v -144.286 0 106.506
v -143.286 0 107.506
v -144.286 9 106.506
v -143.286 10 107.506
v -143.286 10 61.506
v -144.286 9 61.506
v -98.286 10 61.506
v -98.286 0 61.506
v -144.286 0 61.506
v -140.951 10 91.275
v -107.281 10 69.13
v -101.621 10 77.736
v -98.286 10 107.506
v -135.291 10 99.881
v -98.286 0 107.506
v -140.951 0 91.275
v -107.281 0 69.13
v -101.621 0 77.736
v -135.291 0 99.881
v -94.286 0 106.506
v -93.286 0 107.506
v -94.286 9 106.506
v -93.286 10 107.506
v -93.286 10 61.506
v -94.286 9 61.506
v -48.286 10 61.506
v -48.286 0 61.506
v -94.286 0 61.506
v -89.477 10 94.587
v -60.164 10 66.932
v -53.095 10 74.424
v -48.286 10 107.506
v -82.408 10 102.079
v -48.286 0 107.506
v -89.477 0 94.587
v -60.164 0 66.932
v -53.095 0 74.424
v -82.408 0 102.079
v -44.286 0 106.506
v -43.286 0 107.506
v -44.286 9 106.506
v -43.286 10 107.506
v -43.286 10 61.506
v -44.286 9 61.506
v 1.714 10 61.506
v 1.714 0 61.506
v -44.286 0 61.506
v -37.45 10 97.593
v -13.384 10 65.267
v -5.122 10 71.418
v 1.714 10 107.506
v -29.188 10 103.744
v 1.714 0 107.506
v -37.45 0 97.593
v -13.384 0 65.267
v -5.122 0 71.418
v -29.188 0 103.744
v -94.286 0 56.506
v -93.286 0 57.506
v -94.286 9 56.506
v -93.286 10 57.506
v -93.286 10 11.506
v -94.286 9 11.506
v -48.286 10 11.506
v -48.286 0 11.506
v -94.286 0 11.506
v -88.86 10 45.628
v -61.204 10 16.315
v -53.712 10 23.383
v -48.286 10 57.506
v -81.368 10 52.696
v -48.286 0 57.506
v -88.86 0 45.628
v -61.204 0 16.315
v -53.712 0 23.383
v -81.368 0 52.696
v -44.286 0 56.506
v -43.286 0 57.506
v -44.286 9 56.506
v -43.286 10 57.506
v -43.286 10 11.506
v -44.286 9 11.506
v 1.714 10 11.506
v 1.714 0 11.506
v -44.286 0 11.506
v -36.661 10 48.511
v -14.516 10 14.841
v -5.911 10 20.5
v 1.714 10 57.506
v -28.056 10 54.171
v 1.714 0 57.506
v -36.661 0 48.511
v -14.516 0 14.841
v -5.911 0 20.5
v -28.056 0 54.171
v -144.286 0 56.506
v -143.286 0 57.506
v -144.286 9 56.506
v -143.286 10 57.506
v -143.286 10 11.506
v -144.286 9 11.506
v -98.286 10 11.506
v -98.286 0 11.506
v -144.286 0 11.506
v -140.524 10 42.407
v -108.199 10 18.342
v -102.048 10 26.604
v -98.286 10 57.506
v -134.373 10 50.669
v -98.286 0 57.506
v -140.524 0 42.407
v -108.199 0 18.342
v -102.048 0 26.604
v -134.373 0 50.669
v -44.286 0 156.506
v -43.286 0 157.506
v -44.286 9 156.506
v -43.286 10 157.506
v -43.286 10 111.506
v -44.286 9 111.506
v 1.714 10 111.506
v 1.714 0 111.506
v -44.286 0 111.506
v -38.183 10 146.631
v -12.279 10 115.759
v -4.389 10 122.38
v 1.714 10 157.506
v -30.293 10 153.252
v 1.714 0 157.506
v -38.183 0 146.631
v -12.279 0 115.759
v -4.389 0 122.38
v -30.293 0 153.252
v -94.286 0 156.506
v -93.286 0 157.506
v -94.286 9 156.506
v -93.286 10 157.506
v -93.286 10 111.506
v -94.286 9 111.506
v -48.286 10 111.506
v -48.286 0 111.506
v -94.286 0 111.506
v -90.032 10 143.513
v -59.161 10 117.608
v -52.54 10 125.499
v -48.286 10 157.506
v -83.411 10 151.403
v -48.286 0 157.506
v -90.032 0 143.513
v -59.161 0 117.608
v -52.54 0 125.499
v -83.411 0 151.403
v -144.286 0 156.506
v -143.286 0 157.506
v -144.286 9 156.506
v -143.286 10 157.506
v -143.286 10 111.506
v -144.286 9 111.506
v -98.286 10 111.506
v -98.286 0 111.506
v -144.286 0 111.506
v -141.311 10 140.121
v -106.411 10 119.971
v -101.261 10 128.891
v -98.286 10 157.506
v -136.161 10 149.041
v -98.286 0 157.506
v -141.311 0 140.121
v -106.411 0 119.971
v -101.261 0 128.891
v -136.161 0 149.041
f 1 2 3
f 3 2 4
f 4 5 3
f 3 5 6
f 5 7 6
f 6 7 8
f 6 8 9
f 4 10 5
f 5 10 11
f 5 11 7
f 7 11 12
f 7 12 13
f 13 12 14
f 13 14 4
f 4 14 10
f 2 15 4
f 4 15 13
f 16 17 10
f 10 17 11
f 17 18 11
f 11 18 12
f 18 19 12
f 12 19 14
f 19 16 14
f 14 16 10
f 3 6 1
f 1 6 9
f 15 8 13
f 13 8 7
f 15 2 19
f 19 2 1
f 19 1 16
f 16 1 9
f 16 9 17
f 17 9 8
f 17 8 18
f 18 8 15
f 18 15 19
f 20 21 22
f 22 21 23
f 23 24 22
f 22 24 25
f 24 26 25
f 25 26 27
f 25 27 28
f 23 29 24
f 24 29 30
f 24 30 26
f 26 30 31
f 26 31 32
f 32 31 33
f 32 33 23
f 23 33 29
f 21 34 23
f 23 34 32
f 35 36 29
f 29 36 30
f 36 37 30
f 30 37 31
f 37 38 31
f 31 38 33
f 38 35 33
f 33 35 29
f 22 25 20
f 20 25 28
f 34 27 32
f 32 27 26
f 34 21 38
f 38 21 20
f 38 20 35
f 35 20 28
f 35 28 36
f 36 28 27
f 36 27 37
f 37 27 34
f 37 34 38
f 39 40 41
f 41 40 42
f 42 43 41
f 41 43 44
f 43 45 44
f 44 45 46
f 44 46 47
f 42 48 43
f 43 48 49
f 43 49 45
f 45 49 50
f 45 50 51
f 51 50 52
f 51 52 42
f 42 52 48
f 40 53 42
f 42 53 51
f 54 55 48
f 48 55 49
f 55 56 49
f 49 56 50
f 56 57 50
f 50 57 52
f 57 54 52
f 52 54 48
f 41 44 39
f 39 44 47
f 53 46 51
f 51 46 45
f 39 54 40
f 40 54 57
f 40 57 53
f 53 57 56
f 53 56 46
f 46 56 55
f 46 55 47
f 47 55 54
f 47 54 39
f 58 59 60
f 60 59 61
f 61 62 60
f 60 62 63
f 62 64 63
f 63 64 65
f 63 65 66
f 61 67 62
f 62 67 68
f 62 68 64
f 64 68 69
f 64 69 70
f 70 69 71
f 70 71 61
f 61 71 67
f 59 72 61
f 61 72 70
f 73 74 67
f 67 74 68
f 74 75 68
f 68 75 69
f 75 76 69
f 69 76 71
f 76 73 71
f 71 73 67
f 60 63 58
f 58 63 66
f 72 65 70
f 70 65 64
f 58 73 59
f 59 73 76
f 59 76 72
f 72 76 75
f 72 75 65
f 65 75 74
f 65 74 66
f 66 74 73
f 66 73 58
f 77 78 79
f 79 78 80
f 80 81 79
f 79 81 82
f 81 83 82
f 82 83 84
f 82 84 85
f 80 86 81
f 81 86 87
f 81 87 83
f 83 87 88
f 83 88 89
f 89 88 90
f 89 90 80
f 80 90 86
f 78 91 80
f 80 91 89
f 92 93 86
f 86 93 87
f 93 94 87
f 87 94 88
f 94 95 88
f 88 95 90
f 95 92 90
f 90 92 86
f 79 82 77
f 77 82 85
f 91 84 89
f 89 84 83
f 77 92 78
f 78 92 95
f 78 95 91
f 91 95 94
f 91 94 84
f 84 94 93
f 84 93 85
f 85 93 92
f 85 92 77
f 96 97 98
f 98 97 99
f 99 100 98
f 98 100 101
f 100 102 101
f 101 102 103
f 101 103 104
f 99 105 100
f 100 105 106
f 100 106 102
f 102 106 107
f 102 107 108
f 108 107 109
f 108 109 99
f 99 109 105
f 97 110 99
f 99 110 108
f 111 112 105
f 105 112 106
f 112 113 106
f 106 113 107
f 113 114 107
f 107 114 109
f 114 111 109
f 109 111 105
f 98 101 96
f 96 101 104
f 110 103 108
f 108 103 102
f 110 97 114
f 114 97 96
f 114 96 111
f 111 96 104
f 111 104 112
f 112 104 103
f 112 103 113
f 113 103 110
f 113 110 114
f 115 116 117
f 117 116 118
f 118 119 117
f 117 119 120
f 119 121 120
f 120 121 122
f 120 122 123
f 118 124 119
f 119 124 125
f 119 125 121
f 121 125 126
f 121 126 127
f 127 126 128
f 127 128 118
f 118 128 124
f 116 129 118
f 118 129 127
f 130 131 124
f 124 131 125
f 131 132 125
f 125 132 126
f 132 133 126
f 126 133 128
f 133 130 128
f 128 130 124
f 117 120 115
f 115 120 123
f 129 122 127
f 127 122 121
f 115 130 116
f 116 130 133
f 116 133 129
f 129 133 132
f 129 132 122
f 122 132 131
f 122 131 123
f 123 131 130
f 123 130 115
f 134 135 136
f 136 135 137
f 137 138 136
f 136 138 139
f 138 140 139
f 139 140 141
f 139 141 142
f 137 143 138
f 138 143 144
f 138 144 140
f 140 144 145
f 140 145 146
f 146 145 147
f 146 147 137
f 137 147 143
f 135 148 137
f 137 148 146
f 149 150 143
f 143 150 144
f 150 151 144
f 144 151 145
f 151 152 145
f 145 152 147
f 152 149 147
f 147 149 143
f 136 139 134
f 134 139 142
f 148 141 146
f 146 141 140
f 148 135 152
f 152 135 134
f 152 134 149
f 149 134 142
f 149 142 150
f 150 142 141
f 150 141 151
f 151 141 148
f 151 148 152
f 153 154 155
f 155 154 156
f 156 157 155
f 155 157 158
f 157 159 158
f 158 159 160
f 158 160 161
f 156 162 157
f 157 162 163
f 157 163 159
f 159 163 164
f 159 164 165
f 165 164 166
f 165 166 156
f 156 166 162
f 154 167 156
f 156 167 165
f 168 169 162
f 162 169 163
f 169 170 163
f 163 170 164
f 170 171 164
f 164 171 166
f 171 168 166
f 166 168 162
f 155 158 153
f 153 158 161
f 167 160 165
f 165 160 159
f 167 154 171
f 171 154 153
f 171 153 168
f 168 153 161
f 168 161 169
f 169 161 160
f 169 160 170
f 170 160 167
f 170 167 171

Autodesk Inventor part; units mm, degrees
ref_plane "YZ Plane" through (0, 0, 0) normal (1, 0, 0) x (0, 1, 0)
ref_plane "XZ Plane" through (0, 0, 0) normal (0, 1, 0) x (-1, 0, 0)
ref_plane "XY Plane" through (0, 0, 0) normal (0, 0, 1) x (1, 0, 0)
sketch "Sketch1" plane through (0, 0, 0) normal (0, 1, 0) x (-1, 0, 0)
  line L0 (44.286, 57.5056) -> (-1.714, 57.5056)
  line L1 (-1.714, 57.5056) -> (-1.714, 11.5056)
  line L2 (-1.714, 11.5056) -> (44.286, 11.5056)
  line L3 (44.286, 11.5056) -> (44.286, 57.5056)
  line L4 (21.286, 57.5056) -> (21.286, 11.5056) construction
  line L5 (44.286, 34.5056) -> (-1.714, 34.5056) construction
  line L6 (32.0821, 50.9202) -> (21.286, 34.5056) construction
  line L7 (21.286, 34.5056) -> (12.8023, 40.0854) construction
  line L8 (36.6614, 48.5107) -> (28.0558, 54.1706)
  line L9 (28.0558, 54.1706) -> (5.9106, 20.5005)
  line L10 (5.9106, 20.5005) -> (14.5162, 14.8405)
  line L11 (14.5162, 14.8405) -> (36.6614, 48.5107)
  line L12 (94.286, 57.5056) -> (48.286, 57.5056)
  line L13 (48.286, 57.5056) -> (48.286, 11.5056)
  line L14 (48.286, 11.5056) -> (94.286, 11.5056)
  line L15 (94.286, 11.5056) -> (94.286, 57.5056)
  line L16 (71.286, 57.5056) -> (71.286, 11.5056) construction
  line L17 (94.286, 34.5056) -> (48.286, 34.5056) construction
  line L18 (84.7685, 48.7961) -> (71.286, 34.5056) construction
  line L19 (71.286, 34.5056) -> (63.9001, 41.4738) construction
  line L20 (88.8597, 45.628) -> (81.3678, 52.6963)
  line L21 (81.3678, 52.6963) -> (53.7123, 23.3831)
  line L22 (53.7123, 23.3831) -> (61.2042, 16.3148)
  line L23 (61.2042, 16.3148) -> (88.8597, 45.628)
  line L24 (144.286, 57.5056) -> (98.286, 57.5056)
  line L25 (98.286, 57.5056) -> (98.286, 11.5056)
  line L26 (98.286, 11.5056) -> (144.286, 11.5056)
  line L27 (144.286, 11.5056) -> (144.286, 57.5056)
  line L28 (121.286, 57.5056) -> (121.286, 11.5056) construction
  line L29 (144.286, 34.5056) -> (98.286, 34.5056) construction
  line L30 (137.0452, 46.2378) -> (121.286, 34.5056) construction
  line L31 (121.286, 34.5056) -> (115.2223, 42.6505) construction
  line L32 (140.5241, 42.4074) -> (134.3734, 50.6693)
  line L33 (134.3734, 50.6693) -> (102.0478, 26.6038)
  line L34 (102.0478, 26.6038) -> (108.1986, 18.3419)
  line L35 (108.1986, 18.3419) -> (140.5241, 42.4074)
  line L36 (44.286, 107.5056) -> (-1.714, 107.5056)
  line L37 (-1.714, 107.5056) -> (-1.714, 61.5056)
  line L38 (-1.714, 61.5056) -> (44.286, 61.5056)
  line L39 (44.286, 61.5056) -> (44.286, 107.5056)
  line L40 (21.286, 107.5056) -> (21.286, 61.5056) construction
  line L41 (44.286, 84.5056) -> (-1.714, 84.5056) construction
  line L42 (33.0183, 100.2647) -> (21.286, 84.5056) construction
  line L43 (21.286, 84.5056) -> (13.141, 90.5693) construction
  line L44 (37.4497, 97.593) -> (29.1878, 103.7437)
  line L45 (29.1878, 103.7437) -> (5.1223, 71.4182)
  line L46 (5.1223, 71.4182) -> (13.3842, 65.2674)
  line L47 (13.3842, 65.2674) -> (37.4497, 97.593)
  line L48 (44.286, 157.5056) -> (-1.714, 157.5056)
  line L49 (-1.714, 157.5056) -> (-1.714, 111.5056)
  line L50 (-1.714, 111.5056) -> (44.286, 111.5056)
  line L51 (44.286, 111.5056) -> (44.286, 157.5056)
  line L52 (21.286, 157.5056) -> (21.286, 111.5056) construction
  line L53 (44.286, 134.5056) -> (-1.714, 134.5056) construction
  line L54 (33.9147, 149.5559) -> (21.286, 134.5056) construction
  line L55 (21.286, 134.5056) -> (13.5074, 141.0326) construction
  line L56 (38.1833, 146.631) -> (30.293, 153.2517)
  line L57 (30.293, 153.2517) -> (4.3887, 122.3801)
  line L58 (4.3887, 122.3801) -> (12.279, 115.7594)
  line L59 (12.279, 115.7594) -> (38.1833, 146.631)
  line L60 (94.286, 107.5056) -> (48.286, 107.5056)
  line L61 (48.286, 107.5056) -> (48.286, 61.5056)
  line L62 (48.286, 61.5056) -> (94.286, 61.5056)
  line L63 (94.286, 61.5056) -> (94.286, 107.5056)
  line L64 (71.286, 107.5056) -> (71.286, 61.5056) construction
  line L65 (94.286, 84.5056) -> (48.286, 84.5056) construction
  line L66 (85.5766, 97.988) -> (71.286, 84.5056) construction
  line L67 (71.286, 84.5056) -> (64.3177, 91.8915) construction
  line L68 (89.4767, 94.5874) -> (82.4084, 102.0793)
  line L69 (82.4084, 102.0793) -> (53.0953, 74.4238)
  line L70 (53.0953, 74.4238) -> (60.1636, 66.9318)
  line L71 (60.1636, 66.9318) -> (89.4767, 94.5874)
  line L72 (94.286, 157.5056) -> (48.286, 157.5056)
  line L73 (48.286, 157.5056) -> (48.286, 111.5056)
  line L74 (48.286, 111.5056) -> (94.286, 111.5056)
  line L75 (94.286, 111.5056) -> (94.286, 157.5056)
  line L76 (71.286, 157.5056) -> (71.286, 111.5056) construction
  line L77 (94.286, 134.5056) -> (48.286, 134.5056) construction
  line L78 (86.3363, 147.1343) -> (71.286, 134.5056) construction
  line L79 (71.286, 134.5056) -> (64.759, 142.2842) construction
  line L80 (90.0321, 143.5126) -> (83.4114, 151.4029)
  line L81 (83.4114, 151.4029) -> (52.5398, 125.4985)
  line L82 (52.5398, 125.4985) -> (59.1606, 117.6083)
  line L83 (59.1606, 117.6083) -> (90.0321, 143.5126)
  line L84 (144.286, 107.5056) -> (98.286, 107.5056)
  line L85 (98.286, 107.5056) -> (98.286, 61.5056)
  line L86 (98.286, 61.5056) -> (144.286, 61.5056)
  line L87 (144.286, 61.5056) -> (144.286, 107.5056)
  line L88 (121.286, 107.5056) -> (121.286, 61.5056) construction
  line L89 (144.286, 84.5056) -> (98.286, 84.5056) construction
  line L90 (137.7007, 95.3017) -> (121.286, 84.5056) construction
  line L91 (121.286, 84.5056) -> (115.7062, 92.9893) construction
  line L92 (140.951, 91.2754) -> (135.2911, 99.8809)
  line L93 (135.2911, 99.8809) -> (101.6209, 77.7357)
  line L94 (101.6209, 77.7357) -> (107.2809, 69.1302)
  line L95 (107.2809, 69.1302) -> (140.951, 91.2754)
  line L96 (144.286, 157.5056) -> (98.286, 157.5056)
  line L97 (98.286, 157.5056) -> (98.286, 111.5056)
  line L98 (98.286, 111.5056) -> (144.286, 111.5056)
  line L99 (144.286, 111.5056) -> (144.286, 157.5056)
  line L100 (121.286, 157.5056) -> (121.286, 111.5056) construction
  line L101 (144.286, 134.5056) -> (98.286, 134.5056) construction
  line L102 (138.3006, 144.329) -> (121.286, 134.5056) construction
  line L103 (121.286, 134.5056) -> (116.2089, 143.2994) construction
  line L104 (141.3114, 140.1205) -> (136.1614, 149.0406)
  line L105 (136.1614, 149.0406) -> (101.2606, 128.8906)
  line L106 (101.2606, 128.8906) -> (106.4106, 119.9705)
  line L107 (106.4106, 119.9705) -> (141.3114, 140.1205)
  dimension "w" = 46
  dimension "d65" = 46
  dimension "d" = 10.3
  dimension "d67" = 40.3
  dimension "d68" = 56.667
  dimension "d69" = 46
  dimension "d70" = 46
  dimension "d71" = 10.3
  dimension "d72" = 40.3
  dimension "d73" = 46.667
  dimension "d76" = 46
  dimension "d77" = 46
  dimension "d78" = 10.3
  dimension "d79" = 40.3
  dimension "d80" = 36.667
  dimension "d83" = 46
  dimension "d84" = 46
  dimension "d85" = 10.3
  dimension "d86" = 40.3
  dimension "d87" = 53.333
  dimension "d90" = 46
  dimension "d91" = 46
  dimension "d92" = 10.3
  dimension "d93" = 40.3
  dimension "d94" = 50
  dimension "d97" = 46
  dimension "d98" = 46
  dimension "d99" = 10.3
  dimension "d100" = 40.3
  dimension "d101" = 43.333
  dimension "d104" = 46
  dimension "d105" = 46
  dimension "d106" = 10.3
  dimension "d107" = 40.3
  dimension "d108" = 40
  dimension "d111" = 46
  dimension "d112" = 46
  dimension "d113" = 10.3
  dimension "d114" = 40.3
  dimension "d115" = 33.333
  dimension "d118" = 46
  dimension "d119" = 46
  dimension "d120" = 10.3
  dimension "d121" = 40.3
  dimension "d122" = 30
extrude "Extrusion1" add sketch "Sketch1" along normal blind 10
chamfer "Chamfer1" distance 1 angle 45 18 edges at (-144.286, 10, 134.5056) (-144.286, 10, 84.5056) (-144.286, 10, 34.5056) (-94.286, 10, 134.5056) (-94.286, 10, 84.5056) (-94.286, 10, 34.5056) (-44.286, 10, 34.5056) (-44.286, 10, 84.5056) (-44.286, 10, 134.5056) (-144.286, 5, 157.5056) (-144.286, 5, 107.5056) (-144.286, 5, 57.5056) (-94.286, 5, 157.5056) (-94.286, 5, 107.5056) (-94.286, 5, 57.5056) (-44.286, 5, 157.5056) (-44.286, 5, 107.5056) (-44.286, 5, 57.5056)
equation "\"d68\" = a0 + 8 * ad"
equation "\"d73\" = a0 + 5 * ad"
equation "\"d80\" = a0 + 2 * ad"
equation "\"d87\" = a0 + 7 * ad"
equation "\"d94\" = a0 + 6 * ad"
equation "\"d101\" = a0 + 4 * ad"
equation "\"d108\" = a0 + 3 * ad"
equation "\"d115\" = a0 + ad"
equation "\"d122\" = a0 + 0 * ad"
equation "\"ad\" = 3.33333deg"
equation "\"d74\" = 0 * d75"
equation "\"d75\" = 3.333333deg"
equation "\"d81\" = 0 * d82"
equation "\"d82\" = 3.333333deg"
equation "\"d88\" = 0 * d89"
equation "\"d89\" = 3.333333deg"
equation "\"d95\" = 0 * d96"
equation "\"d96\" = 3.333333deg"
equation "\"d102\" = 0 * d103"
equation "\"d103\" = 3.333333deg"
equation "\"d109\" = 0 * d110"
equation "\"d110\" = 3.333333deg"
equation "\"d116\" = 0 * d117"
equation "\"d117\" = 3.333333deg"
equation "\"d123\" = 0 * d124"
equation "\"d124\" = 3.333333deg"
equation "\"a0\" = 30deg"
properties part number "magnet-54-offset-9"
